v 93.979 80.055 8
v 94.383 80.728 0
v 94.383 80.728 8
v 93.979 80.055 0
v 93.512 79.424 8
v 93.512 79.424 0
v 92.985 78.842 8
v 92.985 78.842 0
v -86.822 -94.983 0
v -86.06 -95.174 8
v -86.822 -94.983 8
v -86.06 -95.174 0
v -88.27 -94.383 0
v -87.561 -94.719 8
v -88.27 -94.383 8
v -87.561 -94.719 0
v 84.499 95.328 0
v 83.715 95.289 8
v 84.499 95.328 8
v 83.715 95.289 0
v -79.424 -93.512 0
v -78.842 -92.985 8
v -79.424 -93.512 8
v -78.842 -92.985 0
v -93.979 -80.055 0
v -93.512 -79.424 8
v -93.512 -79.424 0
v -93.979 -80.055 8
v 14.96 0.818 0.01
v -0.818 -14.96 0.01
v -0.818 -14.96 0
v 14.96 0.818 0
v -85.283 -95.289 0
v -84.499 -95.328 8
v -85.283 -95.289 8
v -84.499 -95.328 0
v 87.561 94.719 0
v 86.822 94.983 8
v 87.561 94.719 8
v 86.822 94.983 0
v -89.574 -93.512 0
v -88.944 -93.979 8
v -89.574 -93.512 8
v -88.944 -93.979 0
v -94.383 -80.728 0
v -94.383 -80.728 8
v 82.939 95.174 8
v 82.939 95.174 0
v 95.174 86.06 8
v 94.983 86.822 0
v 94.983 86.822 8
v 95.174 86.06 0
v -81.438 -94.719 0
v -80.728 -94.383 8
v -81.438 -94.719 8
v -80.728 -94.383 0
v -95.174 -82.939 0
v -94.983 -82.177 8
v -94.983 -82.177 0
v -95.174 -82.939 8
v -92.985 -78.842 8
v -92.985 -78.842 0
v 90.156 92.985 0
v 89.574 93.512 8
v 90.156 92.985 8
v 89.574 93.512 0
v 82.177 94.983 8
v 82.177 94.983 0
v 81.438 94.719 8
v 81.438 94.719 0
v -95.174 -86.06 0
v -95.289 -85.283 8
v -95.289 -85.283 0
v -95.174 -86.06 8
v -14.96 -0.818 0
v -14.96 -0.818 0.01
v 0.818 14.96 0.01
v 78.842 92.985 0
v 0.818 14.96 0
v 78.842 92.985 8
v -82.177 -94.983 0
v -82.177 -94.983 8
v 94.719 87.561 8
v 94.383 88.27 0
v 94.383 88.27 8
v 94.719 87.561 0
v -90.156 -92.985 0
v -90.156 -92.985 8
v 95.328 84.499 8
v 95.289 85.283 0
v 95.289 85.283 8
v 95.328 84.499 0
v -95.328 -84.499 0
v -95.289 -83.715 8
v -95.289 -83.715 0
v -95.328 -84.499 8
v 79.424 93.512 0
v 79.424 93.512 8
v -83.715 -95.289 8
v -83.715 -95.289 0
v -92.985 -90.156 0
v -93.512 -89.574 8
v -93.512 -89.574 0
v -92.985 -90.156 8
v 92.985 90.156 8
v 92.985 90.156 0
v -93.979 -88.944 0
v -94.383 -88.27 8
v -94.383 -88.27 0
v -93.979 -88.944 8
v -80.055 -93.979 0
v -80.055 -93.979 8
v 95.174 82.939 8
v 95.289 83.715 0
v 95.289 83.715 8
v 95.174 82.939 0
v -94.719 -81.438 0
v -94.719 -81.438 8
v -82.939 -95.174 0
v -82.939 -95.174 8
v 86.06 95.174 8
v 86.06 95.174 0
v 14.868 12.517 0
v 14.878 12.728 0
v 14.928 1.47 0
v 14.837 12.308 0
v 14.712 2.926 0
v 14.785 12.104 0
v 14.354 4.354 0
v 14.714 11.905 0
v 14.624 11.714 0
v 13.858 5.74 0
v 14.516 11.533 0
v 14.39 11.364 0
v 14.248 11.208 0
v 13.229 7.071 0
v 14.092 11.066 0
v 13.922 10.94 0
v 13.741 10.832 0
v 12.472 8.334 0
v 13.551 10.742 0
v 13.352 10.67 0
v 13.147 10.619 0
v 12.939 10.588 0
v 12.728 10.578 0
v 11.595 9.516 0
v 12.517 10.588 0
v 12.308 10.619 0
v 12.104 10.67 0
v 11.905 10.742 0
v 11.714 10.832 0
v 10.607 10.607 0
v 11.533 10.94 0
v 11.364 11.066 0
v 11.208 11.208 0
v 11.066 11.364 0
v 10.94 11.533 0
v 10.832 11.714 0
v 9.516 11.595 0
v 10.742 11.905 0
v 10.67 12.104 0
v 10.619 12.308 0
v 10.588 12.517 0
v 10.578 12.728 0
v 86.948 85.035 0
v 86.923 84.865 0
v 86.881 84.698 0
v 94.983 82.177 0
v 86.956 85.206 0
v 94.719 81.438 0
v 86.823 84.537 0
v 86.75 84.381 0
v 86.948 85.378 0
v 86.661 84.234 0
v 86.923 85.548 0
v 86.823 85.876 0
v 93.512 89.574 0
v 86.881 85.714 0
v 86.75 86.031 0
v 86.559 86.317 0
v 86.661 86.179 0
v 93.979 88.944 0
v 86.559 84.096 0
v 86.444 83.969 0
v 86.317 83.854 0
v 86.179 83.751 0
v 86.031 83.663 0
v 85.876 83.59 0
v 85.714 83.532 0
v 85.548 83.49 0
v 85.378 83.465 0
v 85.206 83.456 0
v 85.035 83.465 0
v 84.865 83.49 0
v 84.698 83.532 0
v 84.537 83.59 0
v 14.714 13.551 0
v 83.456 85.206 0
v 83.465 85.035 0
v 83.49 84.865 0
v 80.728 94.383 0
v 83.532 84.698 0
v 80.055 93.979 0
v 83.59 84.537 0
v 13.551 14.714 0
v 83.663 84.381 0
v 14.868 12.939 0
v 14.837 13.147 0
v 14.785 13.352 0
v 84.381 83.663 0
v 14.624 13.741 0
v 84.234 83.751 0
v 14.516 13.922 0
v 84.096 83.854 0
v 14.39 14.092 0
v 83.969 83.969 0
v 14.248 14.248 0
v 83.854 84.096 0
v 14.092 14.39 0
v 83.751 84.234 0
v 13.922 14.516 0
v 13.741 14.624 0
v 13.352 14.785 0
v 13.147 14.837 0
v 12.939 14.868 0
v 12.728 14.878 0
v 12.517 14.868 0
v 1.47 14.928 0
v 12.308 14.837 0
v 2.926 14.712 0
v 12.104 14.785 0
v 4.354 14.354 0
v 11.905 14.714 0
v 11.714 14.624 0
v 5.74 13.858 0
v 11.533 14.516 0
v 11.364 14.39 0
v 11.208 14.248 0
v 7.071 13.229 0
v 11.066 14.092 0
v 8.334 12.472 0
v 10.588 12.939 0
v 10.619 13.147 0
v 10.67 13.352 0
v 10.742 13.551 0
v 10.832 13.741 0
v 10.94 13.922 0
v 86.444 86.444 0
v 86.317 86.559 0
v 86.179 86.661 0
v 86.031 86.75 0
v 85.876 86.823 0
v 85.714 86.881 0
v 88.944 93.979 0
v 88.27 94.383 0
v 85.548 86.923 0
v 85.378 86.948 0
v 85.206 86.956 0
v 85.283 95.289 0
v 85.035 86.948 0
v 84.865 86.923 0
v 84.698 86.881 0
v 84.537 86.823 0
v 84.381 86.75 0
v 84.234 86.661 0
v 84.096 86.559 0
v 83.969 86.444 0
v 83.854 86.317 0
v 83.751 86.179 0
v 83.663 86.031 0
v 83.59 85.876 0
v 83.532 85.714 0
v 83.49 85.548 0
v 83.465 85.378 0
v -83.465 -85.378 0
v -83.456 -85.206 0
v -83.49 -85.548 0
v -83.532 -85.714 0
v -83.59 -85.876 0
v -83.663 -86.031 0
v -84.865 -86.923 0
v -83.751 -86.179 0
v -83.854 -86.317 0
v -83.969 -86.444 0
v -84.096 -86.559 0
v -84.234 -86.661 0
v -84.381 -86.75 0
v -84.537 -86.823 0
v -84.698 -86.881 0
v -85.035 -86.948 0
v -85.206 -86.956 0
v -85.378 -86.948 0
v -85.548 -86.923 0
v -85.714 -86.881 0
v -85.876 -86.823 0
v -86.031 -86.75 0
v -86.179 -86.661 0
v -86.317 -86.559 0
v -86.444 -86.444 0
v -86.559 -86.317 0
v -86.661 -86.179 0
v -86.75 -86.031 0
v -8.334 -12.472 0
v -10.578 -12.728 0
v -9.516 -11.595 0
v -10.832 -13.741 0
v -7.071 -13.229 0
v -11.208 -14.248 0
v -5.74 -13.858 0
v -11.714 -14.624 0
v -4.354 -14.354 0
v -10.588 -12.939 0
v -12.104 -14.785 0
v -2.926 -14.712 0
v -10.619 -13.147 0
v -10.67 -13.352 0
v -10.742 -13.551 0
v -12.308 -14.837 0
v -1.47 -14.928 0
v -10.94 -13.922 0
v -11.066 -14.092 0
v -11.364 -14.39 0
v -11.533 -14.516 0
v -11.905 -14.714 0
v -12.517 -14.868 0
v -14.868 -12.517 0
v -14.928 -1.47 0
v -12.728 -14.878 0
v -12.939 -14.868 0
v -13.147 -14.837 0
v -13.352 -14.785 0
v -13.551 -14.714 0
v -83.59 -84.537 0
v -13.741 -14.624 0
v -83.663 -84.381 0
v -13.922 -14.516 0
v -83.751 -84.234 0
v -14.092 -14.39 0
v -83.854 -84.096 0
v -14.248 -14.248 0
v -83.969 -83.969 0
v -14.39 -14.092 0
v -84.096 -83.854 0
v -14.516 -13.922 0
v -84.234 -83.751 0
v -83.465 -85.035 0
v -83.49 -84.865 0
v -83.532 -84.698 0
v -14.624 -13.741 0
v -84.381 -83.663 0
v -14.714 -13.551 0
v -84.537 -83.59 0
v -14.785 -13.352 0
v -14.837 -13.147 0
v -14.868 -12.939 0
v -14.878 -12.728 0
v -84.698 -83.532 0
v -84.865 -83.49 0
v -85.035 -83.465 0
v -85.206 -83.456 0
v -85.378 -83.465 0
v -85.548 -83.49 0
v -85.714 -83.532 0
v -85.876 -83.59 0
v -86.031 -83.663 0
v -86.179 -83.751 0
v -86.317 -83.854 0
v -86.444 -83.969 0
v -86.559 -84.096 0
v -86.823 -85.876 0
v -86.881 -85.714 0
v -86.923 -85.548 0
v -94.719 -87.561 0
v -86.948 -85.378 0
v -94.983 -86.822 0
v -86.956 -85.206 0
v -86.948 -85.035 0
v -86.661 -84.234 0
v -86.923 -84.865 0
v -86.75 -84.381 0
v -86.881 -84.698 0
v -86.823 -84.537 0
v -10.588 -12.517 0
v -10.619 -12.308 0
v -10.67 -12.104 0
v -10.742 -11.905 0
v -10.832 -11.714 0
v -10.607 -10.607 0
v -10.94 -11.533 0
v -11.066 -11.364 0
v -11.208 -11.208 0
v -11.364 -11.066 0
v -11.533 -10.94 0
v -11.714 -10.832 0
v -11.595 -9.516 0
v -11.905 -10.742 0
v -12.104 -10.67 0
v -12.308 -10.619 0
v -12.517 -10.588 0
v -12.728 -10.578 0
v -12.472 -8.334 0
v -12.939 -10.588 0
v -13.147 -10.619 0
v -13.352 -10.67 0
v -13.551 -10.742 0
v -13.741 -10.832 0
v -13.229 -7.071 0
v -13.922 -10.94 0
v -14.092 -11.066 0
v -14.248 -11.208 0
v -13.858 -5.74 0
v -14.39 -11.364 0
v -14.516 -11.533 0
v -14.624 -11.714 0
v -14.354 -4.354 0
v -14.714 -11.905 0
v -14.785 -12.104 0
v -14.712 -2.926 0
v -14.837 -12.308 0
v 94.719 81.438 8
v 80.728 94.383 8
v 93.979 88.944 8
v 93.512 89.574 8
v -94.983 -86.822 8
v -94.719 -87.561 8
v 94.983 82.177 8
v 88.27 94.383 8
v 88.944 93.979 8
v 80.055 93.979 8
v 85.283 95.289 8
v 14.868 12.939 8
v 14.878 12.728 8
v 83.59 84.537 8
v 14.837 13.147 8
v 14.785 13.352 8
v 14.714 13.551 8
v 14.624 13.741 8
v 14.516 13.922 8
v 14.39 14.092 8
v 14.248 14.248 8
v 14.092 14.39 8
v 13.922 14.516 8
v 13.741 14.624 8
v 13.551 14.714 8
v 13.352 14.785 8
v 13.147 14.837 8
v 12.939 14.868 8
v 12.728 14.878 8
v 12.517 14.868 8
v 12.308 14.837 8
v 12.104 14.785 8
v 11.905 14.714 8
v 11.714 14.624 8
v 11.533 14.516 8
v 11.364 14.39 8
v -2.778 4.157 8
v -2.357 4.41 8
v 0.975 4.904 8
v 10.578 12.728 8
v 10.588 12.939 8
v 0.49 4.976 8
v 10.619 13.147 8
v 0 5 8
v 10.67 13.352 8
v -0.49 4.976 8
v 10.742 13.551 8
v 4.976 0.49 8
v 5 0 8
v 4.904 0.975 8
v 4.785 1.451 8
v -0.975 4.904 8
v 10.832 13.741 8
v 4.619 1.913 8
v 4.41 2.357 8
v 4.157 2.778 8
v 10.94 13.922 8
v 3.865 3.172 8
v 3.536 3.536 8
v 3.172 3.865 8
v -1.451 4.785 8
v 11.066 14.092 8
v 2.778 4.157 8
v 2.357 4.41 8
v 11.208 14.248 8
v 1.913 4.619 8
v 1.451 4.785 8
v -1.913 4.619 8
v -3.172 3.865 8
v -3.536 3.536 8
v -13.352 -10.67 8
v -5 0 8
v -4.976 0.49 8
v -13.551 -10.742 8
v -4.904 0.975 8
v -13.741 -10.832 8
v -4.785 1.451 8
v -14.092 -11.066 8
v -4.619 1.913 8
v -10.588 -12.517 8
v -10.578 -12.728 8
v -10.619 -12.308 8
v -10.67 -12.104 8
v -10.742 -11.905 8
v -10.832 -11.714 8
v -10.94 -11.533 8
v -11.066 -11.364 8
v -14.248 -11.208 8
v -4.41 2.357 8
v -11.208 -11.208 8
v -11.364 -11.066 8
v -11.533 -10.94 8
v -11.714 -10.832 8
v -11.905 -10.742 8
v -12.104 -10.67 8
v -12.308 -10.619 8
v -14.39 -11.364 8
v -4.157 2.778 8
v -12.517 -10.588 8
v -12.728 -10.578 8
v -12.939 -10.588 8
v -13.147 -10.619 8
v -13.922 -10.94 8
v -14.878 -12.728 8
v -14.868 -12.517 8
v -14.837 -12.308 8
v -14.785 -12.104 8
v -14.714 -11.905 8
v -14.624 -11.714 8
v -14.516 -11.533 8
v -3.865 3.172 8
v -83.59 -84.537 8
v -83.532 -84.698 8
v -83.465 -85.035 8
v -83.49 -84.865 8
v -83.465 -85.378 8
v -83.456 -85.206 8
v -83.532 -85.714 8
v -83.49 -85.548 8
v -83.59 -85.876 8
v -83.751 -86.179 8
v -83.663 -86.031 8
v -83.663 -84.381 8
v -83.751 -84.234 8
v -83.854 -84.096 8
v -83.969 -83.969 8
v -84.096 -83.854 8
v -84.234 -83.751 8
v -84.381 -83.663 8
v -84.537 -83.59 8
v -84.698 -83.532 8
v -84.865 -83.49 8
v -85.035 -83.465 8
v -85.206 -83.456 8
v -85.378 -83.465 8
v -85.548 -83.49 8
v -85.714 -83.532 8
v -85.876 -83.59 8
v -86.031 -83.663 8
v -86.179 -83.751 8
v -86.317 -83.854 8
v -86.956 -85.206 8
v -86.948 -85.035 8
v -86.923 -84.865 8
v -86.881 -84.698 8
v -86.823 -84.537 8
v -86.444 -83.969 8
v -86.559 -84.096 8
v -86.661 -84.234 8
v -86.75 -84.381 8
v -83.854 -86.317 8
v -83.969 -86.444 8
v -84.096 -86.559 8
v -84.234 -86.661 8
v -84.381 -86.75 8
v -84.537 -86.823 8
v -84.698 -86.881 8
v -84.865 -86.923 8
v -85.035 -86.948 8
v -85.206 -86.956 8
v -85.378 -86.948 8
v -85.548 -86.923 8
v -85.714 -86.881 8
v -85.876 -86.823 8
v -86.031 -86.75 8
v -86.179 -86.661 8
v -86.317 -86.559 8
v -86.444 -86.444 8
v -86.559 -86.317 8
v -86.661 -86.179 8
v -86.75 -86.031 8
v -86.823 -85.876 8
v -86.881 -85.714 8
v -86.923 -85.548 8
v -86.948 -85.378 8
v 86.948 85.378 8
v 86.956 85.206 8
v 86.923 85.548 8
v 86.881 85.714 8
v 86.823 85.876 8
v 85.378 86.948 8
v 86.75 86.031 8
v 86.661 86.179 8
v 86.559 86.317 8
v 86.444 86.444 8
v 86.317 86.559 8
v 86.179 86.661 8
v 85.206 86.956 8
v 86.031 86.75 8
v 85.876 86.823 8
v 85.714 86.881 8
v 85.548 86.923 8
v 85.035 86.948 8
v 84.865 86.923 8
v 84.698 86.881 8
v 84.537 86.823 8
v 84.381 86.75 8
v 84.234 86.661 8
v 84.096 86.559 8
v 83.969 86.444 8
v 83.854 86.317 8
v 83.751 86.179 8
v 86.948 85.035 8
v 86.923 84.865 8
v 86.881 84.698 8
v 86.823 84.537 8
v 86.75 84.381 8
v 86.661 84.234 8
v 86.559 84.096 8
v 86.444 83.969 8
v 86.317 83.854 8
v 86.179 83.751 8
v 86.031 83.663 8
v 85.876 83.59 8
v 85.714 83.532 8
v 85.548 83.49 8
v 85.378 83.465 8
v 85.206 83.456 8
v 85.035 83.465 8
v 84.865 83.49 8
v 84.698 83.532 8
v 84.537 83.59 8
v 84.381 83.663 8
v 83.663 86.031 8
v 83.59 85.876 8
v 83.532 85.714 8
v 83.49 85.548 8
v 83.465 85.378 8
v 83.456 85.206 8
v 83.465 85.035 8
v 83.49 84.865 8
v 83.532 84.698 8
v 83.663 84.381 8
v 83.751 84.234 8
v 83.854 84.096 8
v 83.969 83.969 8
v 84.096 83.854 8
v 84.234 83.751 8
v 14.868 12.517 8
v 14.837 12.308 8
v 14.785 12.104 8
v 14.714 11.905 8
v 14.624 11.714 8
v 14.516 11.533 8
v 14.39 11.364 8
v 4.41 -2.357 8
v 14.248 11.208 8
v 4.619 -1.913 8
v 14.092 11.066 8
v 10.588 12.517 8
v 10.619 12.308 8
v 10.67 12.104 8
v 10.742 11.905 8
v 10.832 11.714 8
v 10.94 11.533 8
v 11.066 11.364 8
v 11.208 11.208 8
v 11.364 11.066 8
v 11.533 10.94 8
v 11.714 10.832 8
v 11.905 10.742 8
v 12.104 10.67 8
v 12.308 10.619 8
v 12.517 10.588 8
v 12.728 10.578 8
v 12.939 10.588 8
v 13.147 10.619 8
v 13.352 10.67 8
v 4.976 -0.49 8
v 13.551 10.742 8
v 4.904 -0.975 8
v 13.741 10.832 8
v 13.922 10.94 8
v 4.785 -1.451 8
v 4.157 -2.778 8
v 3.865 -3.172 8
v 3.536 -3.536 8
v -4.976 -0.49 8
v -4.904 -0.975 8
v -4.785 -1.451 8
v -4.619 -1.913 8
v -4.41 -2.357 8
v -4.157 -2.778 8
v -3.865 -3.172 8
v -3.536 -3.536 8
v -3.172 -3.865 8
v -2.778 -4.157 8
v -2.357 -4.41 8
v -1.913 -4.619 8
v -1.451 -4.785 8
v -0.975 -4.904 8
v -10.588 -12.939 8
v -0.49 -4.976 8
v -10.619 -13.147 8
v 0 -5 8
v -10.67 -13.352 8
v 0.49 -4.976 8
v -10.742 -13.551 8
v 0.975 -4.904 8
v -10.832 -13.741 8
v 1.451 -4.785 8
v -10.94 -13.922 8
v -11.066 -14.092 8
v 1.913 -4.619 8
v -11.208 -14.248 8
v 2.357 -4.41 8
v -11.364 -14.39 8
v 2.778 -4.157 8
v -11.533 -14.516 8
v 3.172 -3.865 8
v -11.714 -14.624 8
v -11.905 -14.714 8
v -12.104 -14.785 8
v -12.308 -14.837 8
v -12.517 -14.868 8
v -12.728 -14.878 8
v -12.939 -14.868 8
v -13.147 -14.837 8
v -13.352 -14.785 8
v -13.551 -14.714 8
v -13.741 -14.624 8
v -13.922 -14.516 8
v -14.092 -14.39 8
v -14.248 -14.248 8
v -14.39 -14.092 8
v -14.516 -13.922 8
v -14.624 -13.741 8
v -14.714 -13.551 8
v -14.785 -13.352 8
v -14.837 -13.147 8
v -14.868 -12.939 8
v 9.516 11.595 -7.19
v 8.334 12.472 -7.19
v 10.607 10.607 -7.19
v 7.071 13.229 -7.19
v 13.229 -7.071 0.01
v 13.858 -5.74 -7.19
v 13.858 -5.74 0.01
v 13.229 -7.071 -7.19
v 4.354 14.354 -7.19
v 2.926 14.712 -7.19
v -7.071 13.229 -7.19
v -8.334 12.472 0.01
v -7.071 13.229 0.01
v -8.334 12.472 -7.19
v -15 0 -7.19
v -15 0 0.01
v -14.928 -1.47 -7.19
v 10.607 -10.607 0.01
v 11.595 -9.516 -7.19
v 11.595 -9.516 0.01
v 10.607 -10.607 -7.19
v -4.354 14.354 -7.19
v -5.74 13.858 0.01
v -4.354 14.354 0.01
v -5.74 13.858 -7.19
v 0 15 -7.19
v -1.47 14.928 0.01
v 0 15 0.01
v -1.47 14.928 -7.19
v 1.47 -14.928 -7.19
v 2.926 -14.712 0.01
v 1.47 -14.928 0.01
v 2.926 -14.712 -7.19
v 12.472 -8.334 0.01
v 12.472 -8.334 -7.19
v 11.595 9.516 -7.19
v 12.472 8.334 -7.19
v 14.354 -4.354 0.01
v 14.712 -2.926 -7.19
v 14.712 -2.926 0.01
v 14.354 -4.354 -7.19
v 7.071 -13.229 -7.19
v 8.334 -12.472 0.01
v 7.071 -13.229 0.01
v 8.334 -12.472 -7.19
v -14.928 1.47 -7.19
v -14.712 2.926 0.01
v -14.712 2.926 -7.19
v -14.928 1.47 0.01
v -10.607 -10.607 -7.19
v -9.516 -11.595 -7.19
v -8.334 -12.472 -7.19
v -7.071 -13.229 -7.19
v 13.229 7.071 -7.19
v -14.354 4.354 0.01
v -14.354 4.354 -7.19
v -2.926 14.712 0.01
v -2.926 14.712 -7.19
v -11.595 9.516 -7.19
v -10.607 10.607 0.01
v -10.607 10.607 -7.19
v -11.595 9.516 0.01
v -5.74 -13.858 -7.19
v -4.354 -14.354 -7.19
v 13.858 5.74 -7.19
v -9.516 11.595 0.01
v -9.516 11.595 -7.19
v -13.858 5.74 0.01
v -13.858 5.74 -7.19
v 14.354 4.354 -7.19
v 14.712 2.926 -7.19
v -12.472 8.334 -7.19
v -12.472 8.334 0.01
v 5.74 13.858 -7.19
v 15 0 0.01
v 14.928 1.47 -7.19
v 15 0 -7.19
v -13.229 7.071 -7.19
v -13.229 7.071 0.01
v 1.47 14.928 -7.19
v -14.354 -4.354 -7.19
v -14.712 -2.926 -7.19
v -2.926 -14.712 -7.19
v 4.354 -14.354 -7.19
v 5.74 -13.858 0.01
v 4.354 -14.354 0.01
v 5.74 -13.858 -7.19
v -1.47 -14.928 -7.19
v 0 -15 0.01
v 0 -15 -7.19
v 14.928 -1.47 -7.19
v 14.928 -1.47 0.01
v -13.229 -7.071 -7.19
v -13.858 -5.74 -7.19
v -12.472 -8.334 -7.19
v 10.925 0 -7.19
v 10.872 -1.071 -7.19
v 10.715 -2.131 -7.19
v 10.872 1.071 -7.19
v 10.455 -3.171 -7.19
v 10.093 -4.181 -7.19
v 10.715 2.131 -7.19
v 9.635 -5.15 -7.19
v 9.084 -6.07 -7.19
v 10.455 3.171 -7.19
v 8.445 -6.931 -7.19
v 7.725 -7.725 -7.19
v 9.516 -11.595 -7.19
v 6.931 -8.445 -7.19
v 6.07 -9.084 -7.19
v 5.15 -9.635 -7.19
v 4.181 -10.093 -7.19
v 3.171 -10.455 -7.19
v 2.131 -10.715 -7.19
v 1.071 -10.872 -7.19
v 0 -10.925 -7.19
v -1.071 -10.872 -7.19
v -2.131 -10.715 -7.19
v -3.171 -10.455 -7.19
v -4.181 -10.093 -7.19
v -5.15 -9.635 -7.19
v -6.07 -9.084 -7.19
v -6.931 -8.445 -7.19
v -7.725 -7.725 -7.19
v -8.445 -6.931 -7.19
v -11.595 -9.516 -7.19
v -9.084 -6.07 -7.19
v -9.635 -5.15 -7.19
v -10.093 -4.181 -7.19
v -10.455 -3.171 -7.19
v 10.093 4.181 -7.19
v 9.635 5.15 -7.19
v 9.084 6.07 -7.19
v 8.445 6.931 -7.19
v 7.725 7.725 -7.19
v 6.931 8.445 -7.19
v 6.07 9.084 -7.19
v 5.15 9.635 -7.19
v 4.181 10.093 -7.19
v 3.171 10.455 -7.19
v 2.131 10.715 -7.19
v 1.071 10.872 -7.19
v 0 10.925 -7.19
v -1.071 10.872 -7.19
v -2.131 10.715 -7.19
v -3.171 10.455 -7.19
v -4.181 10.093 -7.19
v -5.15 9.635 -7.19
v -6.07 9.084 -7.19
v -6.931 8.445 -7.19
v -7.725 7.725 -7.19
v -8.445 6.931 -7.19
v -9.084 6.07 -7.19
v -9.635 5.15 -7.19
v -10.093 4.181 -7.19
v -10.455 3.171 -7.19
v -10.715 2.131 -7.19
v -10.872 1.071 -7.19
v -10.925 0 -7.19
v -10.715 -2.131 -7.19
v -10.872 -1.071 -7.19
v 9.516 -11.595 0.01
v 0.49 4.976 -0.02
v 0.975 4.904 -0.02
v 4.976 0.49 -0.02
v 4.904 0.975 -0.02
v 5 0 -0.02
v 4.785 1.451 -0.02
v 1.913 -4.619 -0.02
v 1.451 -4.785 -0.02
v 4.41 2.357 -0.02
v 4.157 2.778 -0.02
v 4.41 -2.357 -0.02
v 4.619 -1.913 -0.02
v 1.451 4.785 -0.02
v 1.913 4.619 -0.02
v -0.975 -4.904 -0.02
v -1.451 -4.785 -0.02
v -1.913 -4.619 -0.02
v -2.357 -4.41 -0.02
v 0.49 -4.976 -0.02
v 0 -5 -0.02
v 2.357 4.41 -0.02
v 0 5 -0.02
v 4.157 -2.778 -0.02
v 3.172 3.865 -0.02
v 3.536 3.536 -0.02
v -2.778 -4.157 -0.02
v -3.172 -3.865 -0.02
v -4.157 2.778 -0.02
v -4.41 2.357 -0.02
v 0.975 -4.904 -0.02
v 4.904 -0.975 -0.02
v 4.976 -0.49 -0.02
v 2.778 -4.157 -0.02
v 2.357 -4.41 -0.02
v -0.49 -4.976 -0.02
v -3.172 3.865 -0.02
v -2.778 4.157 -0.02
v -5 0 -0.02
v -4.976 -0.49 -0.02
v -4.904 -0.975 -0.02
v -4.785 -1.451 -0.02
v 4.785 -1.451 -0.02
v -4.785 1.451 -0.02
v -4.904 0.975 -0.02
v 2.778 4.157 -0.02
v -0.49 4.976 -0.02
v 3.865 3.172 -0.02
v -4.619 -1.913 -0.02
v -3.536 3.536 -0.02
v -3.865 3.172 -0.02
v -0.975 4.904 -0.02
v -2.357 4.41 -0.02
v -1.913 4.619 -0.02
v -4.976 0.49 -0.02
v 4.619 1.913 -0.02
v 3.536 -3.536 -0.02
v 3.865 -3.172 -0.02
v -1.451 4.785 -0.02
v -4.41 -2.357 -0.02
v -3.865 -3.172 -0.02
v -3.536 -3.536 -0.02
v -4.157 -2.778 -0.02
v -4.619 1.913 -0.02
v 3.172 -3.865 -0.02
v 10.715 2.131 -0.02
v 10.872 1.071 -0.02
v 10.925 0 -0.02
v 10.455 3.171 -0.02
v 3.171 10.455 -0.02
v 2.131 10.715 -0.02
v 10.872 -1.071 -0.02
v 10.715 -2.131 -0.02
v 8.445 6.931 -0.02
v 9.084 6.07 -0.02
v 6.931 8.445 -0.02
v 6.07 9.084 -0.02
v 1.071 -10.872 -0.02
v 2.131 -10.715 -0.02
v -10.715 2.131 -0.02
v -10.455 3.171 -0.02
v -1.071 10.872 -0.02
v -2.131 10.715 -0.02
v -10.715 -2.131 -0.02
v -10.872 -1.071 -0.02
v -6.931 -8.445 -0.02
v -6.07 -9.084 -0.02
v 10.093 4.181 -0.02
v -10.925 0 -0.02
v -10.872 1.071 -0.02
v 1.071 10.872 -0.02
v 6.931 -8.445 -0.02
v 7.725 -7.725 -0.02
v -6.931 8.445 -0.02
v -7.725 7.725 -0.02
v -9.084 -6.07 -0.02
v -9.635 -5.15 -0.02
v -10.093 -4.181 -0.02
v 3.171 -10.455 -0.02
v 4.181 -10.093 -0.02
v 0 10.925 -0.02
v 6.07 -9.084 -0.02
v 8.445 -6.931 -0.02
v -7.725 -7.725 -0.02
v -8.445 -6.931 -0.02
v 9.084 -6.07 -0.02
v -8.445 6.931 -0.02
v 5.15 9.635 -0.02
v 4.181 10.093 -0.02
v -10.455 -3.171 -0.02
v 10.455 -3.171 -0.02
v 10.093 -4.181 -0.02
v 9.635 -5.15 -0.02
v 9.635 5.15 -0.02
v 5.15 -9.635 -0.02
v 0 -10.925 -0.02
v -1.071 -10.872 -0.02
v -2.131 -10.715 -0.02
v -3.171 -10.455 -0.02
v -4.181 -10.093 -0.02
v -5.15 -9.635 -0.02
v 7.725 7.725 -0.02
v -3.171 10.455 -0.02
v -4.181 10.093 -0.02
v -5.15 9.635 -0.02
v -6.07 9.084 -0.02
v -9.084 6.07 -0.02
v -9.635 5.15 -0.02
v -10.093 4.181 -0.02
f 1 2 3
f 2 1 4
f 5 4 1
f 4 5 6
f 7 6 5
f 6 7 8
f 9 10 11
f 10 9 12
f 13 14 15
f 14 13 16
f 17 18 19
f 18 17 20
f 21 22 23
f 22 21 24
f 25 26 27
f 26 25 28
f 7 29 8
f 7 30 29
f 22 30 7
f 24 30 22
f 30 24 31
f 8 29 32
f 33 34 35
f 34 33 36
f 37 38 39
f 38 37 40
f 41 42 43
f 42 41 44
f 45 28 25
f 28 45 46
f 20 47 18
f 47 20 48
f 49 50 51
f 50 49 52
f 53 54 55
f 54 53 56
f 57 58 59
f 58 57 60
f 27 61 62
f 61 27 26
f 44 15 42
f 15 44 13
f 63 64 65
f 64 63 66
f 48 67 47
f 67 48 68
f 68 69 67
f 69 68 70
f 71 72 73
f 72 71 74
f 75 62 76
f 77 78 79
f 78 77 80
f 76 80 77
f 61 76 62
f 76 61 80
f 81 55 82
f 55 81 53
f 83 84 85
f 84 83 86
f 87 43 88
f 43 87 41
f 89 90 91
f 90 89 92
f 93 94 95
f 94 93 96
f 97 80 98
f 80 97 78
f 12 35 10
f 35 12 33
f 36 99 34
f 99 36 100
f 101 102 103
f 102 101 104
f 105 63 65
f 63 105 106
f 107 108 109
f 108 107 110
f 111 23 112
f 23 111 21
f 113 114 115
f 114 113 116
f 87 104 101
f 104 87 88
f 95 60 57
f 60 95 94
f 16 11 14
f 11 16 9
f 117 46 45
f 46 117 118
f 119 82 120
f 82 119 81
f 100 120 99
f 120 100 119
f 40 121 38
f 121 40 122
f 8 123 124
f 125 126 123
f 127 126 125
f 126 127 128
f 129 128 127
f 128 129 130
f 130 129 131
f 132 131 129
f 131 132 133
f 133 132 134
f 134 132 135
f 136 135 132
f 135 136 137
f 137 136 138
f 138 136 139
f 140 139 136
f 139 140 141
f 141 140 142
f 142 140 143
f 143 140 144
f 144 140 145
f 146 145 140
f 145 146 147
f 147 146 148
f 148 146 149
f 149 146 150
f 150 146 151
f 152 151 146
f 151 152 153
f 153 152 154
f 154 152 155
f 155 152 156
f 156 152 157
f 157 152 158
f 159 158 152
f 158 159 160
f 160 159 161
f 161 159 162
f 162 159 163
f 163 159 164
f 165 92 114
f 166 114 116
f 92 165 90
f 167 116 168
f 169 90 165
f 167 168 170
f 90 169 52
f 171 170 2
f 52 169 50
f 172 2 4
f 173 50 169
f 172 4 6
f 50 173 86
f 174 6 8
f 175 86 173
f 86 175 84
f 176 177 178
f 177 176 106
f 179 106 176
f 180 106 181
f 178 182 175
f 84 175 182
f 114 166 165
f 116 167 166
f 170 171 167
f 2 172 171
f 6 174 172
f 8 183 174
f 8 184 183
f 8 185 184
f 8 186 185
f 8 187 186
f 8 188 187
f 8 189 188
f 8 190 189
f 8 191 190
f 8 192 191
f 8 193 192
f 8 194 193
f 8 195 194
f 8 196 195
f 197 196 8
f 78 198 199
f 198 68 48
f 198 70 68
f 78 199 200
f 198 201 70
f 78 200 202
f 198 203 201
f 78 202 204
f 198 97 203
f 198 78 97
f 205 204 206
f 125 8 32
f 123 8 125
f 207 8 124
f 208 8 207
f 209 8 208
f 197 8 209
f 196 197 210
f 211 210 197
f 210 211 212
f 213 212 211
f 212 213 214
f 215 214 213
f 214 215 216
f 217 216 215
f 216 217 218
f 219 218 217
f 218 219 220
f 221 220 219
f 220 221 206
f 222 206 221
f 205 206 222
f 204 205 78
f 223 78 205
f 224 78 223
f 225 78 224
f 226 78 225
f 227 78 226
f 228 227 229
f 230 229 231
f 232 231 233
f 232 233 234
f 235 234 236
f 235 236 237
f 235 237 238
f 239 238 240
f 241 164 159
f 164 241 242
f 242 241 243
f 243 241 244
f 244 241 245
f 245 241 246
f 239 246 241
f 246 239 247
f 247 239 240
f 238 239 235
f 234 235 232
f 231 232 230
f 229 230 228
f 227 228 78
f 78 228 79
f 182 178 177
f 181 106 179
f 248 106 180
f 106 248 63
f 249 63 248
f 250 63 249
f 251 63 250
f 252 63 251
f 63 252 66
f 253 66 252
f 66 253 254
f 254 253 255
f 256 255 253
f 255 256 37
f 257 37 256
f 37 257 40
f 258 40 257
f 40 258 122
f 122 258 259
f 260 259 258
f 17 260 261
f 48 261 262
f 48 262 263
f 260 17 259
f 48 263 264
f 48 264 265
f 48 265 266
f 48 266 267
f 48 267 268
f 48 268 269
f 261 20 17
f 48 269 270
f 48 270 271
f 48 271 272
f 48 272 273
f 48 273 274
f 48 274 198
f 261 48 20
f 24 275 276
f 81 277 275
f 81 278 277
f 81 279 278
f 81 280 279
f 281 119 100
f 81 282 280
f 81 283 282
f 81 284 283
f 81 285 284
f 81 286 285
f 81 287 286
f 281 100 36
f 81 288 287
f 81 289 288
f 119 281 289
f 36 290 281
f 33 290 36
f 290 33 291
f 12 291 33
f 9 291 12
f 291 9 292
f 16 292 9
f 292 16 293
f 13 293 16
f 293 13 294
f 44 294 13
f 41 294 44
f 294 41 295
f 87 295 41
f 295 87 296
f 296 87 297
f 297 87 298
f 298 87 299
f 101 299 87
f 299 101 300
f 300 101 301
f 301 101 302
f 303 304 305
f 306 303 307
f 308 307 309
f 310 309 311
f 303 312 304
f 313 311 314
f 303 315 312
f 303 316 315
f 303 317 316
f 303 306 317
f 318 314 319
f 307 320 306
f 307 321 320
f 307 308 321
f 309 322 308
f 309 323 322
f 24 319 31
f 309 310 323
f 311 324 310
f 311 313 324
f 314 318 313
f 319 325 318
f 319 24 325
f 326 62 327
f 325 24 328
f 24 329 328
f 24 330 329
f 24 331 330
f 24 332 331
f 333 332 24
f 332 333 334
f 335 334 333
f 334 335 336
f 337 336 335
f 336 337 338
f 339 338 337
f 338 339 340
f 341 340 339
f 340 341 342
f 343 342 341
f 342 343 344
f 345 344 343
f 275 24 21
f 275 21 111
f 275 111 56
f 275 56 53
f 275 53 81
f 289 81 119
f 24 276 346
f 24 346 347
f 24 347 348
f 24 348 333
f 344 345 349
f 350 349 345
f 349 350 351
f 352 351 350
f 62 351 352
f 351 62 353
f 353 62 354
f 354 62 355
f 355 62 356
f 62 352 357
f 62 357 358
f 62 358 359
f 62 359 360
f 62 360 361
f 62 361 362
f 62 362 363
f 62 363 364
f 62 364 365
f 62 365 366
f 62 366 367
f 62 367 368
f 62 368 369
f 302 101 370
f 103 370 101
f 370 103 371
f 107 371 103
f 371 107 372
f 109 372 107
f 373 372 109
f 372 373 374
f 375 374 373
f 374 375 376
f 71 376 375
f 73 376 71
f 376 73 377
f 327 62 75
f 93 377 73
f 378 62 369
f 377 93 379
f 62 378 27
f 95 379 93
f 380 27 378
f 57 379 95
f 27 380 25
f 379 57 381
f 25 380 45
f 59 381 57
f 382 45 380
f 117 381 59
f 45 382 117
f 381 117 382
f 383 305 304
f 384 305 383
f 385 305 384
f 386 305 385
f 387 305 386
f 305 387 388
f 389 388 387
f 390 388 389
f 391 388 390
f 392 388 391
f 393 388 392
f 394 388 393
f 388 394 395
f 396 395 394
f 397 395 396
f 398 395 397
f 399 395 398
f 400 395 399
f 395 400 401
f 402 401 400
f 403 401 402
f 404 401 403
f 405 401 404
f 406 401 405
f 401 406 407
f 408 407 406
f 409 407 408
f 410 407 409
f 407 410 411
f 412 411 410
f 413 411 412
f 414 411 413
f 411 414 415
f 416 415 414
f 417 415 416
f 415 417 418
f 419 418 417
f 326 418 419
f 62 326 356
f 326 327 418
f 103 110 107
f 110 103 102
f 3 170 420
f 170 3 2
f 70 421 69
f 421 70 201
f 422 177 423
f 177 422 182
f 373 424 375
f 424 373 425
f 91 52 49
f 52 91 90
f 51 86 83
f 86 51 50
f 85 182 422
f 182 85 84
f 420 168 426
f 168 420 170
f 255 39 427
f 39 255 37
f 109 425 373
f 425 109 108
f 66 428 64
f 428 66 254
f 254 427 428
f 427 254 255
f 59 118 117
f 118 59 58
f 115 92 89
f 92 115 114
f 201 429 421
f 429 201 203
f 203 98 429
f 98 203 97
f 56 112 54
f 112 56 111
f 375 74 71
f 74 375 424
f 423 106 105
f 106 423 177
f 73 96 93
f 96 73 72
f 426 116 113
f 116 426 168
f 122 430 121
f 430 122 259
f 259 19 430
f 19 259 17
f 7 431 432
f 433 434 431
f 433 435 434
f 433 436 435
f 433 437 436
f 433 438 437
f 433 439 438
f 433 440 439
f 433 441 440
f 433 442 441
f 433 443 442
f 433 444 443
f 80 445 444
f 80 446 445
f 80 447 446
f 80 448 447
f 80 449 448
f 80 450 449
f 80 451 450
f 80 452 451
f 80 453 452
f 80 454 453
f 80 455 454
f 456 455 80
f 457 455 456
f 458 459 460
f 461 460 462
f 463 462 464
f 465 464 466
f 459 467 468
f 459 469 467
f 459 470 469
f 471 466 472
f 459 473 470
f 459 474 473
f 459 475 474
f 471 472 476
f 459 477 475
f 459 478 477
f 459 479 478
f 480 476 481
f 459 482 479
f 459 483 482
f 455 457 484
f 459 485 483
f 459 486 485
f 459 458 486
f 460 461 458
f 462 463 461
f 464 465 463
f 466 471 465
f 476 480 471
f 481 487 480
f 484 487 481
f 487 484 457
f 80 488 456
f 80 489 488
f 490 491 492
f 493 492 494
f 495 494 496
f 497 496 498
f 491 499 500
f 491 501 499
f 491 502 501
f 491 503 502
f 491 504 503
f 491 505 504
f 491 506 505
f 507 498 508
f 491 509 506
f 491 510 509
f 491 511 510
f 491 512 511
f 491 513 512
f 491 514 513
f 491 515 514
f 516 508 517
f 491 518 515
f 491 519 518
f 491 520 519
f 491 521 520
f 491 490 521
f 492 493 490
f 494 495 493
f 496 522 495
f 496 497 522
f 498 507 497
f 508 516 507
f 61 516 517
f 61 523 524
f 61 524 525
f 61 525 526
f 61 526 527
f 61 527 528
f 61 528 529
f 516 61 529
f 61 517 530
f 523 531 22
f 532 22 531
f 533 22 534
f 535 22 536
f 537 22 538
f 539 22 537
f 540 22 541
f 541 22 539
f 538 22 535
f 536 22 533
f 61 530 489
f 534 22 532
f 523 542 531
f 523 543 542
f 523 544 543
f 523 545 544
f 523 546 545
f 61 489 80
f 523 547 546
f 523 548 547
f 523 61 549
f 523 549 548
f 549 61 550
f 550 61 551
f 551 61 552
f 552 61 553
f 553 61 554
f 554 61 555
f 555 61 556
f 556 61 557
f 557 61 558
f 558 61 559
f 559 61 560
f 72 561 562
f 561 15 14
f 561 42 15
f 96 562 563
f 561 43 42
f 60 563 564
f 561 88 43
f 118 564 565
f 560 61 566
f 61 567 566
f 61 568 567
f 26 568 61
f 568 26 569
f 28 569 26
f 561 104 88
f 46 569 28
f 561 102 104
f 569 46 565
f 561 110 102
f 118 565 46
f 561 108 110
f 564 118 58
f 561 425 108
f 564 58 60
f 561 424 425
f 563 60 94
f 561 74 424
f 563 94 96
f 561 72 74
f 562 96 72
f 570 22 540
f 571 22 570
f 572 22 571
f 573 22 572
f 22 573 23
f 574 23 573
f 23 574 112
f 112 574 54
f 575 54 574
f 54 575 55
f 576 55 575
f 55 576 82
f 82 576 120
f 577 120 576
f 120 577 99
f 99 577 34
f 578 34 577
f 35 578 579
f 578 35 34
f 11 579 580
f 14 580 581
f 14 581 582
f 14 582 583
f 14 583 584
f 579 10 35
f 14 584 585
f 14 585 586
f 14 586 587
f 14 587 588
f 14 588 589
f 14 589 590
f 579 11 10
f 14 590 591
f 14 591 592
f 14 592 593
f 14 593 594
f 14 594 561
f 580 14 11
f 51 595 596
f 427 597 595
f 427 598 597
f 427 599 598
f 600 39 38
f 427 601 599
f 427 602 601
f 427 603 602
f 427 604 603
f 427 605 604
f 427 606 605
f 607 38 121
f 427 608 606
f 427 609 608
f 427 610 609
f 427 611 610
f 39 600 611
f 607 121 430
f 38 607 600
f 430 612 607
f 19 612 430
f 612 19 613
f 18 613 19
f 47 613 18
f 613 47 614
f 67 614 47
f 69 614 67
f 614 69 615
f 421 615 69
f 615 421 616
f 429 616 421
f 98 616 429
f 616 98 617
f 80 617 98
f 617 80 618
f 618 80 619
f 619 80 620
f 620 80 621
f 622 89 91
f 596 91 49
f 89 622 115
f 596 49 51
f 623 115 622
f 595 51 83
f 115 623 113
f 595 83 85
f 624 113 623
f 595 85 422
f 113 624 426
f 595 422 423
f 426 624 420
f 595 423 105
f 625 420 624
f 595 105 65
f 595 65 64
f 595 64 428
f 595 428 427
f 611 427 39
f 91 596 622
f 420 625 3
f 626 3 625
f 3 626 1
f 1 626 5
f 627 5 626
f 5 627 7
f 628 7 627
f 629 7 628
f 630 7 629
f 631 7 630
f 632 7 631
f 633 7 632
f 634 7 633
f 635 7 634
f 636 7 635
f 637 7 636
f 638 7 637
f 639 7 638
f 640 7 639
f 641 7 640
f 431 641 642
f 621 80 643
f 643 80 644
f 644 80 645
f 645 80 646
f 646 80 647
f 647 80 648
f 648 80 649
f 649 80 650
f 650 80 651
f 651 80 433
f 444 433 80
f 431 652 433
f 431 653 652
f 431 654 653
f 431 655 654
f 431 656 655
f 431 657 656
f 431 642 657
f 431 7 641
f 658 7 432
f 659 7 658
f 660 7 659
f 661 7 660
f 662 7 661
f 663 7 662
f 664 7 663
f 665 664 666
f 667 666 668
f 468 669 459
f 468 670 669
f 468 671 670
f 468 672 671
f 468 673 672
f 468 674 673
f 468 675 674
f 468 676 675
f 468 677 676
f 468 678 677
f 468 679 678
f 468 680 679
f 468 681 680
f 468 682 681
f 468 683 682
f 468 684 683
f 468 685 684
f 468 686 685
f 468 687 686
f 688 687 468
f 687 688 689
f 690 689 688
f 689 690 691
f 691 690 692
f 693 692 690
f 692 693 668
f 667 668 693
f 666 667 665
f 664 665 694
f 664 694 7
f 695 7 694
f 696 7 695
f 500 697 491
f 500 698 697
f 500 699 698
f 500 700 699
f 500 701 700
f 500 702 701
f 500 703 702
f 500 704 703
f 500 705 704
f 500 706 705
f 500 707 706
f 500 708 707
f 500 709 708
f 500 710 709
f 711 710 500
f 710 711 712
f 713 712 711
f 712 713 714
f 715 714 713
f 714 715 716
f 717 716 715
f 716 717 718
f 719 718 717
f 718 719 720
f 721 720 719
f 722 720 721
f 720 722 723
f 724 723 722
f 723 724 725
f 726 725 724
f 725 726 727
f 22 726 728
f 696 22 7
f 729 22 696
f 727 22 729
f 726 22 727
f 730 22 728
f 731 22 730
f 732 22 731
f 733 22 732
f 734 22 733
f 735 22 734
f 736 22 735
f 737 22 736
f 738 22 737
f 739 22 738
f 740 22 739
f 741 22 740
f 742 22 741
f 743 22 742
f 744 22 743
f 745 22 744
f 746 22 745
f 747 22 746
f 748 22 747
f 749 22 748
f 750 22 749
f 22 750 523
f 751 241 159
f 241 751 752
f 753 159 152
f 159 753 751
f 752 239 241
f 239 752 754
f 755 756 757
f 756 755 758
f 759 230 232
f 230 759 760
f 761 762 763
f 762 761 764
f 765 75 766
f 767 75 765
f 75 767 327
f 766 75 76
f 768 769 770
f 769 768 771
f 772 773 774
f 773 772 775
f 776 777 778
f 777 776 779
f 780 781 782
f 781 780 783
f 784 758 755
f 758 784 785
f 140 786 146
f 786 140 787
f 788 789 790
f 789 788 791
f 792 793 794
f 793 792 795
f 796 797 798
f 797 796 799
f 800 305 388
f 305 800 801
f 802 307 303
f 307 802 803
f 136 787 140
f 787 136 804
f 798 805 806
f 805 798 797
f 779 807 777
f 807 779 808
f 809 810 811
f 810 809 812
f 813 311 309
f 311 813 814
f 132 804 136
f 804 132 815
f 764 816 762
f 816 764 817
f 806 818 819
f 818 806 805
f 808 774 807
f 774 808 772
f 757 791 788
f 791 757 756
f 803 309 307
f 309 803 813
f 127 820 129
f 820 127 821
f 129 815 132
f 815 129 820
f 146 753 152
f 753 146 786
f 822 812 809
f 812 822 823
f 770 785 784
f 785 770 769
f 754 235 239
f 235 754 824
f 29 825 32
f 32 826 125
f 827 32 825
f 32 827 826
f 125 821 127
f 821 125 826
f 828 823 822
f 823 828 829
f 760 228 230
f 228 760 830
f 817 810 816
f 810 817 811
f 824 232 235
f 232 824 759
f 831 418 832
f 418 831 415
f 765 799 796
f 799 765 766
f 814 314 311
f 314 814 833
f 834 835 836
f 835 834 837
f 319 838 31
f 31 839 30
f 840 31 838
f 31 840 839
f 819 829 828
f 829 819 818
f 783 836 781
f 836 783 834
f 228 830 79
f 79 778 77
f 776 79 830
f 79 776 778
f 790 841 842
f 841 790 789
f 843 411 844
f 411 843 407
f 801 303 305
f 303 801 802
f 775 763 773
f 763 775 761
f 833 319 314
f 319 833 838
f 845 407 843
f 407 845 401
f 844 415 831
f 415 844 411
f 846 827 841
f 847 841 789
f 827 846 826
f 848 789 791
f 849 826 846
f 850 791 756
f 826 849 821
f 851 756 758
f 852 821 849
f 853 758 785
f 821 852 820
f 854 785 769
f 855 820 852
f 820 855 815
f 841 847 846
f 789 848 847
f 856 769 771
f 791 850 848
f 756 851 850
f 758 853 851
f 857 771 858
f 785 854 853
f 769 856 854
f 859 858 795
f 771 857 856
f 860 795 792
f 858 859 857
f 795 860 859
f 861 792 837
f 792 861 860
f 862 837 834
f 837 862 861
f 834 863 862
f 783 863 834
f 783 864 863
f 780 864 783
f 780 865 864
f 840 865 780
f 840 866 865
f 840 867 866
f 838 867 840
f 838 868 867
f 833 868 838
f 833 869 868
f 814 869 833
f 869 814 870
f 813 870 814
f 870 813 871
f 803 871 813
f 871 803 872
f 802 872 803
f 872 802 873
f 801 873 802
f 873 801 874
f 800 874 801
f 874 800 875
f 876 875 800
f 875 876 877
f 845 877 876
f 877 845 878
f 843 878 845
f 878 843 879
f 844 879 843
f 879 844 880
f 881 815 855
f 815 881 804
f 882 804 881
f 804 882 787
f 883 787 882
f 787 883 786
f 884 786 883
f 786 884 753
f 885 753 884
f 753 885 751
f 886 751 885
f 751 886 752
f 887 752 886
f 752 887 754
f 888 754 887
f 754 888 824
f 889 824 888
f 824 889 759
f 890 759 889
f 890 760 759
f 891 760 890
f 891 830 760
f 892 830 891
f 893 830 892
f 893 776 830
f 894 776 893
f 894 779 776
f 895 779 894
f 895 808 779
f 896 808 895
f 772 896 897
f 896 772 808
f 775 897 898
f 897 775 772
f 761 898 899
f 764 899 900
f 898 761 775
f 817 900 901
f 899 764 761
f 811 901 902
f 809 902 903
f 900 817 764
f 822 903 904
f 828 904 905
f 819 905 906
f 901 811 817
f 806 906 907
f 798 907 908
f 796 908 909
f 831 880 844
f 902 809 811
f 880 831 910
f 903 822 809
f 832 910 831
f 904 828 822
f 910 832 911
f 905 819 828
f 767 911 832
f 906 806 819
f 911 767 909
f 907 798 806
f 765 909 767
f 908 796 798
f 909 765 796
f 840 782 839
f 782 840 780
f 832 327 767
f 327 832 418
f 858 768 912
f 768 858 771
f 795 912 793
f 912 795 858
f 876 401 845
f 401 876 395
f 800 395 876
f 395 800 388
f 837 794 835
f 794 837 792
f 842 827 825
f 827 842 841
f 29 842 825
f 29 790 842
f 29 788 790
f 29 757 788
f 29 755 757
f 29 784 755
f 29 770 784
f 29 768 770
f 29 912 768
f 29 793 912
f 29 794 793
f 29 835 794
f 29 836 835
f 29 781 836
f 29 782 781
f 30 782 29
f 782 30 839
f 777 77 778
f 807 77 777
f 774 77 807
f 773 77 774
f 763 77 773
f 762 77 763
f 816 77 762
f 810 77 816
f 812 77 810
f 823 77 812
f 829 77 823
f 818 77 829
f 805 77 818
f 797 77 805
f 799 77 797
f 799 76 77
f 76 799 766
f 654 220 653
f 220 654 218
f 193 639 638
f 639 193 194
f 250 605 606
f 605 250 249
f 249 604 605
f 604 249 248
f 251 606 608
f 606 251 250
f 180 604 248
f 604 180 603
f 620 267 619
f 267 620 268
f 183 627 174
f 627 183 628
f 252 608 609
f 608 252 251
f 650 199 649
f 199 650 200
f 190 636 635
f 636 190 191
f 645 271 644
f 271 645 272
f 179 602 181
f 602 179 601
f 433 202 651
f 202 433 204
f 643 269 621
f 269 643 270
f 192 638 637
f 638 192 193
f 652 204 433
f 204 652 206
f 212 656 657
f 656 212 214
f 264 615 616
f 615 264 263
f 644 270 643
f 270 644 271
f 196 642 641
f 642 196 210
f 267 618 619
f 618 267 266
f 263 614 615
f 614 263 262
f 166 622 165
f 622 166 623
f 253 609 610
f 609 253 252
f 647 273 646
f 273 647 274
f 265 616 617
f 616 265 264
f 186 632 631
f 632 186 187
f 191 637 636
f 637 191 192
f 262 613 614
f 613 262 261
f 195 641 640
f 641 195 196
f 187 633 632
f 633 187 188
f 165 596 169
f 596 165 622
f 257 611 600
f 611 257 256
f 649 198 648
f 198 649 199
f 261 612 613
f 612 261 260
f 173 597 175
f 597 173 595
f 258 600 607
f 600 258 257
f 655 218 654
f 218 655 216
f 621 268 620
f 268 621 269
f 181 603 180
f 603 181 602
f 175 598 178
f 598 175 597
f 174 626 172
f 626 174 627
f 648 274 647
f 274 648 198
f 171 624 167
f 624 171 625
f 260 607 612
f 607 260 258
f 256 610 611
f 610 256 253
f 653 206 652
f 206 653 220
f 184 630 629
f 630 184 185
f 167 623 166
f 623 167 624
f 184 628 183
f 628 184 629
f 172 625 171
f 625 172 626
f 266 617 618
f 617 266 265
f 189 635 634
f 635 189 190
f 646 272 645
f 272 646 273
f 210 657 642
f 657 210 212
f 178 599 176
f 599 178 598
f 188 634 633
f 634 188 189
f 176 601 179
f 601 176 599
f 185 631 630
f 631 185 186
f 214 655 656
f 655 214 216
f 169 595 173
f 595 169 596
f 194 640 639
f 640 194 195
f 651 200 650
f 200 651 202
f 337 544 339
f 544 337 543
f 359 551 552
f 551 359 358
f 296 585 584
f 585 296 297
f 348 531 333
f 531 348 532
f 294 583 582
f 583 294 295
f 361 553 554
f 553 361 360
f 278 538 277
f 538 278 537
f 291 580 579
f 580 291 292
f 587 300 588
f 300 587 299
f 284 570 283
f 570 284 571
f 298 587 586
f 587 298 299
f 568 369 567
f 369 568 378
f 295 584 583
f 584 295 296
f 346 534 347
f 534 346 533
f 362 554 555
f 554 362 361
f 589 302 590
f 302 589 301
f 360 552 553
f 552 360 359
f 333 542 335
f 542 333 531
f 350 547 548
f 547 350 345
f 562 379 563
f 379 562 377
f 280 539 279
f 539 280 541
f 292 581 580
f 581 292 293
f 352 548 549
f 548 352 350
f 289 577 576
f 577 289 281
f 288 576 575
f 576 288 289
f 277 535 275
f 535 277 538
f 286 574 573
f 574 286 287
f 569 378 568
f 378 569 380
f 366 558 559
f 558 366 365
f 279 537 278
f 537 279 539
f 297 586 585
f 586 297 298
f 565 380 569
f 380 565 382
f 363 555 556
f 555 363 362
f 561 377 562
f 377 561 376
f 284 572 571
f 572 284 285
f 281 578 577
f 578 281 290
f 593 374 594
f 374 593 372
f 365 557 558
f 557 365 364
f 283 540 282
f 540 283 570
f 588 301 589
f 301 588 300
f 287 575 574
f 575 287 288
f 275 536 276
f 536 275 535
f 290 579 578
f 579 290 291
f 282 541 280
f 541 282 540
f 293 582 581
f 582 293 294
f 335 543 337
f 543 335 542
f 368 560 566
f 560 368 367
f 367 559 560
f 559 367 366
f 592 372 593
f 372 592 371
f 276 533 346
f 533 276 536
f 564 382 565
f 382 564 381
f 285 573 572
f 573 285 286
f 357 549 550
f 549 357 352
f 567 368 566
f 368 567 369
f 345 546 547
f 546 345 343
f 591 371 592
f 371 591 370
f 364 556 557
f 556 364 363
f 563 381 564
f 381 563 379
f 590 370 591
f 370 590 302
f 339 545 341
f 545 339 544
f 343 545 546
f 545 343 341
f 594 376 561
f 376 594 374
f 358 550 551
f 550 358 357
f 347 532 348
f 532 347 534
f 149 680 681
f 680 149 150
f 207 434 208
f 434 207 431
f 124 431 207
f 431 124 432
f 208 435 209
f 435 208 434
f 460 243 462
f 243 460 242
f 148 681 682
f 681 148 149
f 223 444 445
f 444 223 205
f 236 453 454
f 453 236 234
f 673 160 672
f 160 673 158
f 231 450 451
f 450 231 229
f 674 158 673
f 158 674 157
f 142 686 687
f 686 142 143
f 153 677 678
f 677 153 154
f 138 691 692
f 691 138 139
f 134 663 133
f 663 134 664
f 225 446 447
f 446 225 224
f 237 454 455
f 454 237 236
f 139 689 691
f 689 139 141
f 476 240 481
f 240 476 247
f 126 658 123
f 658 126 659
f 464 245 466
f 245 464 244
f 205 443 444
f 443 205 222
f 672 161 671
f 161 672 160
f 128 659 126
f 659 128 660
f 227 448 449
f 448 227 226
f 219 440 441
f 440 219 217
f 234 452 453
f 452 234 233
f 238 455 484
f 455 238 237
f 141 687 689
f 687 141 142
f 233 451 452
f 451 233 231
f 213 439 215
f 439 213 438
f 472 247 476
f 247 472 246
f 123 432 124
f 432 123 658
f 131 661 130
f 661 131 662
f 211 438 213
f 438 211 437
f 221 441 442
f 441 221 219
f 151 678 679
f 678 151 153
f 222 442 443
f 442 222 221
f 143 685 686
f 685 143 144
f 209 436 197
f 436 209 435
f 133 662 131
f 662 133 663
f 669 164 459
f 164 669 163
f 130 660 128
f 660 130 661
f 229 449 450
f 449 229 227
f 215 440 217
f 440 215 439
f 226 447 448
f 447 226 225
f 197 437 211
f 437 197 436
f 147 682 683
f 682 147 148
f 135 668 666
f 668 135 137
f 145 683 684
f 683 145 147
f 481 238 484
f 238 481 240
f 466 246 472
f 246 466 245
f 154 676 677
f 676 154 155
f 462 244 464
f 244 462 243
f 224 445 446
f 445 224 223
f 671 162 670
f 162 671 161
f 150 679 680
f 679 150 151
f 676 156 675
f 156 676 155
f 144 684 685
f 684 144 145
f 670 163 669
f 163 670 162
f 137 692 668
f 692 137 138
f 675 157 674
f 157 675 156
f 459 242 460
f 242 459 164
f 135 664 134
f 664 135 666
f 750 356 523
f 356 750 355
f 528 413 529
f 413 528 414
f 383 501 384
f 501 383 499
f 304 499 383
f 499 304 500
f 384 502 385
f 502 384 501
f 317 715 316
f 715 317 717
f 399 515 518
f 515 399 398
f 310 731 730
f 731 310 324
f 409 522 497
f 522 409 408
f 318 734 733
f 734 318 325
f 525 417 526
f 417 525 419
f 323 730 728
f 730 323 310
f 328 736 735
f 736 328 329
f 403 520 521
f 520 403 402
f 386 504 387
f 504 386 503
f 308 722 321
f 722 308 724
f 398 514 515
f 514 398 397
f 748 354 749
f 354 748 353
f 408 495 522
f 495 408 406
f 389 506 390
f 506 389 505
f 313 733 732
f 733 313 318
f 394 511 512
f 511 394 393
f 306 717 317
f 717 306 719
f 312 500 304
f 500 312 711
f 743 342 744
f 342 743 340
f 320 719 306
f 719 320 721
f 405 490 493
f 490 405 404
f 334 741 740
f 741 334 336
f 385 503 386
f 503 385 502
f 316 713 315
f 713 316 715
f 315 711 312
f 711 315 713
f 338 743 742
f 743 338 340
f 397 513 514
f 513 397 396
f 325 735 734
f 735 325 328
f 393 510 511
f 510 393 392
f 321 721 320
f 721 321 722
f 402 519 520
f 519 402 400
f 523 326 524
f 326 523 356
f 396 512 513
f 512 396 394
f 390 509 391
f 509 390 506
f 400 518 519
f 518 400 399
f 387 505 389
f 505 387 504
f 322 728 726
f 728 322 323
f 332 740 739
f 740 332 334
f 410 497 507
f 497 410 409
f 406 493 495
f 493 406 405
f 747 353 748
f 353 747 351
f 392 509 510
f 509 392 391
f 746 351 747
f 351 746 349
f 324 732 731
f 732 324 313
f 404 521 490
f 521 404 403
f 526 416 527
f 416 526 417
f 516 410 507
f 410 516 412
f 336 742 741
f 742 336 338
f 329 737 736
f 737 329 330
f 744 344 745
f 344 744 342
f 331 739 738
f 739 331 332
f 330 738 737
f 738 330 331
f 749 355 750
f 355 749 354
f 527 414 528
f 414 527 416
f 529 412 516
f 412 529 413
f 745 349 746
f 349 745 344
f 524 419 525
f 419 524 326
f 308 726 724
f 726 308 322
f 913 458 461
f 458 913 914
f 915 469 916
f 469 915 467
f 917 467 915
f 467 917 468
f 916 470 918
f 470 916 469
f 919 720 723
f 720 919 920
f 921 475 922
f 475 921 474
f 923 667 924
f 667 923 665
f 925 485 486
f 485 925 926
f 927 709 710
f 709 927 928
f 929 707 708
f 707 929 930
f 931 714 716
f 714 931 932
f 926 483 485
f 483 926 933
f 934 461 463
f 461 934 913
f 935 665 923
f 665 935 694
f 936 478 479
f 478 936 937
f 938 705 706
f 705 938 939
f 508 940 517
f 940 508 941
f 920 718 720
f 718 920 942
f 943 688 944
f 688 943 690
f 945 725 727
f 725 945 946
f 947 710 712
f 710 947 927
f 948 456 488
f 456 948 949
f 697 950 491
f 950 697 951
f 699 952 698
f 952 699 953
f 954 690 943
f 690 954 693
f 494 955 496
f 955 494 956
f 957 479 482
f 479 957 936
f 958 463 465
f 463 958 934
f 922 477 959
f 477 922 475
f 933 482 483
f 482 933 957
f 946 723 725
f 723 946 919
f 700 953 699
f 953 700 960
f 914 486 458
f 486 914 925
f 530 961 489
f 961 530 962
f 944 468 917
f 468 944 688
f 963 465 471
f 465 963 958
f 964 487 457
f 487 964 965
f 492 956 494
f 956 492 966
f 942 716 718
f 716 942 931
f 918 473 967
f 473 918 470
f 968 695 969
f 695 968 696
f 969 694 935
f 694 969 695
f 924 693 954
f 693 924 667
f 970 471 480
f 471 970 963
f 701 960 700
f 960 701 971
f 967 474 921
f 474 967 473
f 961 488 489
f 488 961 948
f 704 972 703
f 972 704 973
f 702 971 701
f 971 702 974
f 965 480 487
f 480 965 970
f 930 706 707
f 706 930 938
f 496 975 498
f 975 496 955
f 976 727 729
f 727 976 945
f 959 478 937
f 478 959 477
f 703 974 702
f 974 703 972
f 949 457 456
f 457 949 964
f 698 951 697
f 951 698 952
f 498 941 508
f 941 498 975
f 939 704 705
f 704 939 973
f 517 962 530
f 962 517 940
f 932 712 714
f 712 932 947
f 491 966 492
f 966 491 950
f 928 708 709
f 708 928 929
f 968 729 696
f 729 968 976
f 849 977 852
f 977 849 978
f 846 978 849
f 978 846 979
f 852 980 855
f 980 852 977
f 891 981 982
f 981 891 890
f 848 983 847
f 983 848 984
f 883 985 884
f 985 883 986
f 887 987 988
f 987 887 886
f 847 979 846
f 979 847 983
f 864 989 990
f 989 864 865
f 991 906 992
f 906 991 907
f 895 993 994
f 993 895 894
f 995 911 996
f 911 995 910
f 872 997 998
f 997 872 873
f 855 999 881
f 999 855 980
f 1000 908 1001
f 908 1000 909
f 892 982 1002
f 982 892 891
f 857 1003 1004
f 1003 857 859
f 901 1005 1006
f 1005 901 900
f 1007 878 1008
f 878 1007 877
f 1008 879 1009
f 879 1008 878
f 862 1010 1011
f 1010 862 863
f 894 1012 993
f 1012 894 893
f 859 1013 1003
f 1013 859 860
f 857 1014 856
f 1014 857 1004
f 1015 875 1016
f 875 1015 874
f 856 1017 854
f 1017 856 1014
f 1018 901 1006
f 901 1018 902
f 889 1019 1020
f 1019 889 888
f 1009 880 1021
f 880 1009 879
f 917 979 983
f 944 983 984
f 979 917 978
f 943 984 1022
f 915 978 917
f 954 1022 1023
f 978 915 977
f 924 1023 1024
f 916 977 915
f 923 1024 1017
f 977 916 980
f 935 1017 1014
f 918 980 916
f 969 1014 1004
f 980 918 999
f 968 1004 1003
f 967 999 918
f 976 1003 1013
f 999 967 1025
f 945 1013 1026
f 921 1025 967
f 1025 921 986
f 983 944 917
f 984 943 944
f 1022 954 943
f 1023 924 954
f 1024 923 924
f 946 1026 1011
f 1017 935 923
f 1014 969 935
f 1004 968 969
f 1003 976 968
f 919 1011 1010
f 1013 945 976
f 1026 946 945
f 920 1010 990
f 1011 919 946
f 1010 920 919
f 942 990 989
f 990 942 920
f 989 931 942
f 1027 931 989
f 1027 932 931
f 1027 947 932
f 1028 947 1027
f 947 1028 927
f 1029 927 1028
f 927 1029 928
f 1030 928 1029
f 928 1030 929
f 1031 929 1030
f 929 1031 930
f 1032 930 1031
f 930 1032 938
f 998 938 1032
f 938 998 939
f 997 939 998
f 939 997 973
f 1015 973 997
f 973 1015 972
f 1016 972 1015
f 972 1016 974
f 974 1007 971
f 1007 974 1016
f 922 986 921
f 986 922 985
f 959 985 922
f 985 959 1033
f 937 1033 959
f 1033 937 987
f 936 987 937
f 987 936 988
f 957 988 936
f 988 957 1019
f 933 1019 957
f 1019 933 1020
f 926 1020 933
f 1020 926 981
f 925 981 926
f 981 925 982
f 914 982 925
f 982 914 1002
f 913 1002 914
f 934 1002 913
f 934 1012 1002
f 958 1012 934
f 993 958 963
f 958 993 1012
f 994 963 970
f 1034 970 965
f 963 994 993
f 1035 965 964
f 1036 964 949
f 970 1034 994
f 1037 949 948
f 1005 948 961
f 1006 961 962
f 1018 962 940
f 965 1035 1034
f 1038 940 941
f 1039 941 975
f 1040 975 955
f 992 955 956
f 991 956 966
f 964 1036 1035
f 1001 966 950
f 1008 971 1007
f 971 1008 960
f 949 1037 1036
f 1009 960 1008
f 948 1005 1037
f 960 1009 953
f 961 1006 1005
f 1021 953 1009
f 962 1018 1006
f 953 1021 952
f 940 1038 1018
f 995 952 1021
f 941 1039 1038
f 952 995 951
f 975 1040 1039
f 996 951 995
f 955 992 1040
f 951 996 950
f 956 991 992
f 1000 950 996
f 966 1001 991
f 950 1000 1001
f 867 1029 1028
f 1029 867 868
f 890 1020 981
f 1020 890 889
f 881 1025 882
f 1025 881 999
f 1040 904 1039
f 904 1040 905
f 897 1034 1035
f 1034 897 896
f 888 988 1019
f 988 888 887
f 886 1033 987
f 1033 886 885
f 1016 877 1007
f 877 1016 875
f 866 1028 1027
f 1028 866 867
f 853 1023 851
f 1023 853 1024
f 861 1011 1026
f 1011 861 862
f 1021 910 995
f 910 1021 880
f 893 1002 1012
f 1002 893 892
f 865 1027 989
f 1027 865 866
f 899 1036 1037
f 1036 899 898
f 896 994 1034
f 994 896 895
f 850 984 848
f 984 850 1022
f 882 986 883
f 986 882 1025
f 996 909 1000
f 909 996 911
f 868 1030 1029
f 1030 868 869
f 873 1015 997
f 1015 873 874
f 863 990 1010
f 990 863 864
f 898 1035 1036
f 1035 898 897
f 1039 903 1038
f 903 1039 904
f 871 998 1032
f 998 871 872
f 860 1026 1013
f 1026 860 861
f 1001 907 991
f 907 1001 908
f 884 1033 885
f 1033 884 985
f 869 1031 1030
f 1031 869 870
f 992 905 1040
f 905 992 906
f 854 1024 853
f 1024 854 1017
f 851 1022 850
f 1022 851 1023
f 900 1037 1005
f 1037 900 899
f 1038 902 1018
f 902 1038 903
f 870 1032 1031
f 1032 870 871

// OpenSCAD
// Gen-DB — front BEARING BRIDGE (bar endbell, 2026-10-10): a 608 boss on a 20 mm wide bar that spans the
// two frame rods at 45 deg and 45+180 deg (R = flange_bolt_r). The front bridge uses the rods at 45/225 deg, the rear
// bridge the rods at 135/315 deg, so the two bridges cross at 90 deg and the stator is held at 4 points.
// A bar instead of a full disc is what lets this big-ring kit fit ONE 410 mm plate. Print flat face DOWN (boss up, no supports).
// Brace holes (temporary M4 jack rods, R = brace_r) sit on the bar axis.
include <parameters.scad>;
$fn = 64;
bar_w = 20;
bar_len = 2 * (flange_bolt_r + 9);
module bar_2d() { offset(r=8) offset(delta=-8) square([bar_len, bar_w], center=true); }
difference() {
    rotate([0, 0, 45]) union() {
        linear_extrude(endbell_thick) bar_2d();
        translate([0, 0, -bearing_h + 0.01]) cylinder(d=30, h=bearing_h);
    }
    translate([0, 0, -bearing_h - 0.1]) cylinder(d=endbell_shaft_clear, h=50);
    translate([0, 0, -bearing_h - 0.02]) cylinder(d=bearing_d, h=bearing_h);
    for (s = [0, 180]) rotate([0, 0, 45 + s]) translate([flange_bolt_r, 0, -20]) cylinder(d=m3_clear, h=60);
    for (a = brace_angles) translate([brace_r*cos(a), brace_r*sin(a), -20]) cylinder(d=brace_d, h=50);
}
